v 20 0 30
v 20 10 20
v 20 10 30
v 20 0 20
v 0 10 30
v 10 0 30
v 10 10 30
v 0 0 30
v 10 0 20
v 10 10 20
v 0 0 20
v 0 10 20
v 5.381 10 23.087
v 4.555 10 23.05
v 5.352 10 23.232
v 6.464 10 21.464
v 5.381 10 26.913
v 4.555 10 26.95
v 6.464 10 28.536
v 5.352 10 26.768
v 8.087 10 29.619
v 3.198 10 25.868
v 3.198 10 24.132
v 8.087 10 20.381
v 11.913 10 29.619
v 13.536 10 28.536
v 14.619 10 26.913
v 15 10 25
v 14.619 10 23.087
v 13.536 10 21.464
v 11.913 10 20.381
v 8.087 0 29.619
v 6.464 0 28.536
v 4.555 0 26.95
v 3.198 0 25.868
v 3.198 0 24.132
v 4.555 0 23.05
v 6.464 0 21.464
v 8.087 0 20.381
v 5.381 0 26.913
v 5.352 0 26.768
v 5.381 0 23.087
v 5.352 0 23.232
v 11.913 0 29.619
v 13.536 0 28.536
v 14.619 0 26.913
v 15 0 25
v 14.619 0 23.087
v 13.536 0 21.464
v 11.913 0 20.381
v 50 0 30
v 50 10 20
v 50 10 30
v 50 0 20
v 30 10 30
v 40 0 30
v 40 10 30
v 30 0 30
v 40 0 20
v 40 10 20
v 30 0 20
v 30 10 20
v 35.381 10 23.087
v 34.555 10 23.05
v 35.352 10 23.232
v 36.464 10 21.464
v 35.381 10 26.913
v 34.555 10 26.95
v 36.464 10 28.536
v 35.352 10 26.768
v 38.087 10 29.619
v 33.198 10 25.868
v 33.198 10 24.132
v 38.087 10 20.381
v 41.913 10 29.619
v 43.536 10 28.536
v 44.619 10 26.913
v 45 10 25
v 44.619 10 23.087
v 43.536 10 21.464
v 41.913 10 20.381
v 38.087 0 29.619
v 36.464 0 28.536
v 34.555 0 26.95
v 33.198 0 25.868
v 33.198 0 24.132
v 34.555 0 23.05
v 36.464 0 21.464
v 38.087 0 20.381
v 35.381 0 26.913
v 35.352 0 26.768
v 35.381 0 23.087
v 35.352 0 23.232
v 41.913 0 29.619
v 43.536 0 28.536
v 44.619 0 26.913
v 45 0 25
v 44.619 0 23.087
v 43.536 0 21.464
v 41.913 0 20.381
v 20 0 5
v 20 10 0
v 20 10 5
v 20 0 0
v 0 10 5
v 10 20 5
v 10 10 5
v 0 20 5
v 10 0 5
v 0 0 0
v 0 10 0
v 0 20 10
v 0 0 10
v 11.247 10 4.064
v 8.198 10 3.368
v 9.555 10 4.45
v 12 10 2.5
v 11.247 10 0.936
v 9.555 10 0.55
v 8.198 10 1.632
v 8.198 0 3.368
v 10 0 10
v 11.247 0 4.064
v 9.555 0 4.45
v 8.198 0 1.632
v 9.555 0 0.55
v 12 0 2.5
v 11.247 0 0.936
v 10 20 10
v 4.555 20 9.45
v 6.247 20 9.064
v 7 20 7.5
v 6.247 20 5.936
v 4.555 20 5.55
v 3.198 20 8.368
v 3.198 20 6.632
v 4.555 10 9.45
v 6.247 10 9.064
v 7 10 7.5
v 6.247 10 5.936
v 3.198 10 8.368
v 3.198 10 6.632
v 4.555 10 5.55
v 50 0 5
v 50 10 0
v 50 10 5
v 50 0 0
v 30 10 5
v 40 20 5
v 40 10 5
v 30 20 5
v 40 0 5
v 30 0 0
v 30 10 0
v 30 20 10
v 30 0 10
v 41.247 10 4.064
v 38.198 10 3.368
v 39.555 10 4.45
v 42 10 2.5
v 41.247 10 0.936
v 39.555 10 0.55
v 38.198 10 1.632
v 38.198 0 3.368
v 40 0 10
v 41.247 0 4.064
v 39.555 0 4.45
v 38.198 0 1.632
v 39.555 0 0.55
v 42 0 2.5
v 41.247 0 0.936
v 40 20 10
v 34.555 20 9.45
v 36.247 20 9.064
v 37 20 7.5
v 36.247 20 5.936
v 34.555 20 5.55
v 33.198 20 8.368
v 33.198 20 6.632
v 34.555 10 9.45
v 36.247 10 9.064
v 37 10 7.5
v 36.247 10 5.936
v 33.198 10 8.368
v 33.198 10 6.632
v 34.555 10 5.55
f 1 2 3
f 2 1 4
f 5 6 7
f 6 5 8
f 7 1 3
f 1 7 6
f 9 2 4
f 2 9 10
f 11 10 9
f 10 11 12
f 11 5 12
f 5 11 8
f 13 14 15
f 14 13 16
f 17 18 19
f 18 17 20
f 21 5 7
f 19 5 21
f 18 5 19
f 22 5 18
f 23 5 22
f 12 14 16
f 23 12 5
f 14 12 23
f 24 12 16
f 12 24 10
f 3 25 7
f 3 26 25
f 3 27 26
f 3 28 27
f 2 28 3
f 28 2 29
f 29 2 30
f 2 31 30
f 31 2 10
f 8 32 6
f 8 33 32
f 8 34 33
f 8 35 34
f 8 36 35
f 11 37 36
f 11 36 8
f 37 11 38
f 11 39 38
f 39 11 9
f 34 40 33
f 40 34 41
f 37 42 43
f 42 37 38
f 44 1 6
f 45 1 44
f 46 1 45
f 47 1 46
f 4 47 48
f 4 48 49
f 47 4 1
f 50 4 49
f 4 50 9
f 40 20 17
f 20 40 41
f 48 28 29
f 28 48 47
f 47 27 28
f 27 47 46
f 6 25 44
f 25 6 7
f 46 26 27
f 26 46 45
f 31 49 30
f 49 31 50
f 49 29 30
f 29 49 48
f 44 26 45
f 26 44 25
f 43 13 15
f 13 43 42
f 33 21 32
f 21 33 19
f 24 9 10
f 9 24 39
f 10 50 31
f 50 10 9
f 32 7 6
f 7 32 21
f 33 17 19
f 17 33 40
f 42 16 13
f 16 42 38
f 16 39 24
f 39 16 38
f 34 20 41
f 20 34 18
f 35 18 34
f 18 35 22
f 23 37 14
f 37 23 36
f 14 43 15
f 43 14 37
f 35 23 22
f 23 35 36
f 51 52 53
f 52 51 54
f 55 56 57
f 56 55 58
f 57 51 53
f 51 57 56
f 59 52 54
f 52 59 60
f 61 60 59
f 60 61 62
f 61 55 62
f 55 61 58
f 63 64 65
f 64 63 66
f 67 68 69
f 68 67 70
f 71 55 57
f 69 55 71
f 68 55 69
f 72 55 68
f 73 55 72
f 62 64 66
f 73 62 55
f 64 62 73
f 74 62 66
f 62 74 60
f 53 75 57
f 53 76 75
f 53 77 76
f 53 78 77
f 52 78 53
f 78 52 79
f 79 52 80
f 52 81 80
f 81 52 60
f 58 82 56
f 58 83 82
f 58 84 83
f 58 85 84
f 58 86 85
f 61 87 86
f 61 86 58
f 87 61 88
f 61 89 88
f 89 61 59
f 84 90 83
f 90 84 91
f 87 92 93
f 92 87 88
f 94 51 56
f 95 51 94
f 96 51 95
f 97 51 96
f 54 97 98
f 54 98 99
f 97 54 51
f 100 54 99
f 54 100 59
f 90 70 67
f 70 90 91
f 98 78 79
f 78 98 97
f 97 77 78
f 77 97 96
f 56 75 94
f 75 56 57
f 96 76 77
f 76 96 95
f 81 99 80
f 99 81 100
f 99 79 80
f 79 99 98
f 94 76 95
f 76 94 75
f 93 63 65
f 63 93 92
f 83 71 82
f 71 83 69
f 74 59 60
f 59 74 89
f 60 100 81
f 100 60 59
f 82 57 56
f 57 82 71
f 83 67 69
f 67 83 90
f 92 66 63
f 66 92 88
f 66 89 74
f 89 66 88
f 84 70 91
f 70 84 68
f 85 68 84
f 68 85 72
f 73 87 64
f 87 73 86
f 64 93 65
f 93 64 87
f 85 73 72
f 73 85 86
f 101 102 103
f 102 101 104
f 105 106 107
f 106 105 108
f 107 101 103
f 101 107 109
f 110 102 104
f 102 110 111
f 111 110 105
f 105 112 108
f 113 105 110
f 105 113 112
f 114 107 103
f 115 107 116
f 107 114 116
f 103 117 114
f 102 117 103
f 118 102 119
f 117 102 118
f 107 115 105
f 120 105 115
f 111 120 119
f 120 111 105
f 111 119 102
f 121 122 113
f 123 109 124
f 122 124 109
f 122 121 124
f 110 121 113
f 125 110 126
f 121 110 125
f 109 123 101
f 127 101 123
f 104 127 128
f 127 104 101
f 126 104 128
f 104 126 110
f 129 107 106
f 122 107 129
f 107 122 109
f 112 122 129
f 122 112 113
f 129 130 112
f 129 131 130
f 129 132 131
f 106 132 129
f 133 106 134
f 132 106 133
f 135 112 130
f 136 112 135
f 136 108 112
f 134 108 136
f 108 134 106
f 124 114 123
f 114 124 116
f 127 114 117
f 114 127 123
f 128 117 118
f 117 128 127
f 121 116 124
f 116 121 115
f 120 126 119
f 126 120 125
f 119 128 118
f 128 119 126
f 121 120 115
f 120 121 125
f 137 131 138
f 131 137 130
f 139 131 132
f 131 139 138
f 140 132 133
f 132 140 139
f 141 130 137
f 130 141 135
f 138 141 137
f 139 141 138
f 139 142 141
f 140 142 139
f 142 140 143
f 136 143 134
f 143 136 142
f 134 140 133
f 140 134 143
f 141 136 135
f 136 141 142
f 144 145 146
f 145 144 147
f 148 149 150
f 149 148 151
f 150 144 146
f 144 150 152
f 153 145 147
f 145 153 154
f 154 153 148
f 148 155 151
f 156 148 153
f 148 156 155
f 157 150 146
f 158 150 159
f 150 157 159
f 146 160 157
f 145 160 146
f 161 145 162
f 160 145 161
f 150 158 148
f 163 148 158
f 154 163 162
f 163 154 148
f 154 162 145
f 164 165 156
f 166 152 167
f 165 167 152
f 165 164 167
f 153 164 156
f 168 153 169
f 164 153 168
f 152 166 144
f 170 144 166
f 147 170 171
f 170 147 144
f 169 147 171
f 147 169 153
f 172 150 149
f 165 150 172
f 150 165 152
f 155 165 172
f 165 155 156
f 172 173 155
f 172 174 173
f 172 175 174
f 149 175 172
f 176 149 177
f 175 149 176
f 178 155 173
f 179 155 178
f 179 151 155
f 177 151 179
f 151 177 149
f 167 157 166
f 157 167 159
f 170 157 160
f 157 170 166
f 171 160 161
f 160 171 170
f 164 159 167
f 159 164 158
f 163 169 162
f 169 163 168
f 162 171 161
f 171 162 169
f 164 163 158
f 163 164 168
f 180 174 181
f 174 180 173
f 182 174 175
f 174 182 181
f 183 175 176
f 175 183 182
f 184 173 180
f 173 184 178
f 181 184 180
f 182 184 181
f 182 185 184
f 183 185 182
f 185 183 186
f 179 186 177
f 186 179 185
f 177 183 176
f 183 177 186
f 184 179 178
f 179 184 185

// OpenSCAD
// Function to create an L-shaped bracket
module l_shaped_bracket() {
    difference() {
        union() {
            // Two rectangular arms forming the L-shape
            cube([20, 10, 5], center = false); // Horizontal arm
            translate([0, 0, 5])
                cube([10, 20, 5], center = false); // Vertical arm
        }
        // Circular holes in each arm
        translate([10, 5, 2.5])
            rotate([90, 0, 0])
                cylinder(r = 2, h = 10, center = true);
        translate([5, 15, 7.5])
            rotate([90, 0, 0])
                cylinder(r = 2, h = 10, center = true);
        // Triangular cutout at the inner corner
        translate([0, 0, 5])
            polyhedron(
                points = [[0, 0, 0], [10, 0, 0], [0, 10, 0], [0, 0, 5]],
                faces = [[0, 1, 2], [0, 1, 3], [0, 2, 3], [1, 2, 3]]
            );
    }
}

// Function to create a C-shaped clamp
module c_shaped_clamp() {
    difference() {
        // Rectangular body
        cube([20, 10, 10], center = false);
        // Circular cutout in the center
        translate([10, 5, 5])
            rotate([90, 0, 0])
                cylinder(r = 5, h = 20, center = true);
        // Circular hole for fastening
        translate([5, 5, 5])
            rotate([90, 0, 0])
                cylinder(r = 2, h = 10, center = true);
    }
}

// Assembly of the model
module assembly() {
    // Layer 1: Two C-shaped clamps
    translate([0, 0, 20])
        c_shaped_clamp();
    translate([30, 0, 20])
        c_shaped_clamp();

    // Layer 2: Two L-shaped brackets
    translate([0, 0, 0])
        l_shaped_bracket();
    translate([30, 0, 0])
        l_shaped_bracket();
}

// Render the assembly
assembly();
